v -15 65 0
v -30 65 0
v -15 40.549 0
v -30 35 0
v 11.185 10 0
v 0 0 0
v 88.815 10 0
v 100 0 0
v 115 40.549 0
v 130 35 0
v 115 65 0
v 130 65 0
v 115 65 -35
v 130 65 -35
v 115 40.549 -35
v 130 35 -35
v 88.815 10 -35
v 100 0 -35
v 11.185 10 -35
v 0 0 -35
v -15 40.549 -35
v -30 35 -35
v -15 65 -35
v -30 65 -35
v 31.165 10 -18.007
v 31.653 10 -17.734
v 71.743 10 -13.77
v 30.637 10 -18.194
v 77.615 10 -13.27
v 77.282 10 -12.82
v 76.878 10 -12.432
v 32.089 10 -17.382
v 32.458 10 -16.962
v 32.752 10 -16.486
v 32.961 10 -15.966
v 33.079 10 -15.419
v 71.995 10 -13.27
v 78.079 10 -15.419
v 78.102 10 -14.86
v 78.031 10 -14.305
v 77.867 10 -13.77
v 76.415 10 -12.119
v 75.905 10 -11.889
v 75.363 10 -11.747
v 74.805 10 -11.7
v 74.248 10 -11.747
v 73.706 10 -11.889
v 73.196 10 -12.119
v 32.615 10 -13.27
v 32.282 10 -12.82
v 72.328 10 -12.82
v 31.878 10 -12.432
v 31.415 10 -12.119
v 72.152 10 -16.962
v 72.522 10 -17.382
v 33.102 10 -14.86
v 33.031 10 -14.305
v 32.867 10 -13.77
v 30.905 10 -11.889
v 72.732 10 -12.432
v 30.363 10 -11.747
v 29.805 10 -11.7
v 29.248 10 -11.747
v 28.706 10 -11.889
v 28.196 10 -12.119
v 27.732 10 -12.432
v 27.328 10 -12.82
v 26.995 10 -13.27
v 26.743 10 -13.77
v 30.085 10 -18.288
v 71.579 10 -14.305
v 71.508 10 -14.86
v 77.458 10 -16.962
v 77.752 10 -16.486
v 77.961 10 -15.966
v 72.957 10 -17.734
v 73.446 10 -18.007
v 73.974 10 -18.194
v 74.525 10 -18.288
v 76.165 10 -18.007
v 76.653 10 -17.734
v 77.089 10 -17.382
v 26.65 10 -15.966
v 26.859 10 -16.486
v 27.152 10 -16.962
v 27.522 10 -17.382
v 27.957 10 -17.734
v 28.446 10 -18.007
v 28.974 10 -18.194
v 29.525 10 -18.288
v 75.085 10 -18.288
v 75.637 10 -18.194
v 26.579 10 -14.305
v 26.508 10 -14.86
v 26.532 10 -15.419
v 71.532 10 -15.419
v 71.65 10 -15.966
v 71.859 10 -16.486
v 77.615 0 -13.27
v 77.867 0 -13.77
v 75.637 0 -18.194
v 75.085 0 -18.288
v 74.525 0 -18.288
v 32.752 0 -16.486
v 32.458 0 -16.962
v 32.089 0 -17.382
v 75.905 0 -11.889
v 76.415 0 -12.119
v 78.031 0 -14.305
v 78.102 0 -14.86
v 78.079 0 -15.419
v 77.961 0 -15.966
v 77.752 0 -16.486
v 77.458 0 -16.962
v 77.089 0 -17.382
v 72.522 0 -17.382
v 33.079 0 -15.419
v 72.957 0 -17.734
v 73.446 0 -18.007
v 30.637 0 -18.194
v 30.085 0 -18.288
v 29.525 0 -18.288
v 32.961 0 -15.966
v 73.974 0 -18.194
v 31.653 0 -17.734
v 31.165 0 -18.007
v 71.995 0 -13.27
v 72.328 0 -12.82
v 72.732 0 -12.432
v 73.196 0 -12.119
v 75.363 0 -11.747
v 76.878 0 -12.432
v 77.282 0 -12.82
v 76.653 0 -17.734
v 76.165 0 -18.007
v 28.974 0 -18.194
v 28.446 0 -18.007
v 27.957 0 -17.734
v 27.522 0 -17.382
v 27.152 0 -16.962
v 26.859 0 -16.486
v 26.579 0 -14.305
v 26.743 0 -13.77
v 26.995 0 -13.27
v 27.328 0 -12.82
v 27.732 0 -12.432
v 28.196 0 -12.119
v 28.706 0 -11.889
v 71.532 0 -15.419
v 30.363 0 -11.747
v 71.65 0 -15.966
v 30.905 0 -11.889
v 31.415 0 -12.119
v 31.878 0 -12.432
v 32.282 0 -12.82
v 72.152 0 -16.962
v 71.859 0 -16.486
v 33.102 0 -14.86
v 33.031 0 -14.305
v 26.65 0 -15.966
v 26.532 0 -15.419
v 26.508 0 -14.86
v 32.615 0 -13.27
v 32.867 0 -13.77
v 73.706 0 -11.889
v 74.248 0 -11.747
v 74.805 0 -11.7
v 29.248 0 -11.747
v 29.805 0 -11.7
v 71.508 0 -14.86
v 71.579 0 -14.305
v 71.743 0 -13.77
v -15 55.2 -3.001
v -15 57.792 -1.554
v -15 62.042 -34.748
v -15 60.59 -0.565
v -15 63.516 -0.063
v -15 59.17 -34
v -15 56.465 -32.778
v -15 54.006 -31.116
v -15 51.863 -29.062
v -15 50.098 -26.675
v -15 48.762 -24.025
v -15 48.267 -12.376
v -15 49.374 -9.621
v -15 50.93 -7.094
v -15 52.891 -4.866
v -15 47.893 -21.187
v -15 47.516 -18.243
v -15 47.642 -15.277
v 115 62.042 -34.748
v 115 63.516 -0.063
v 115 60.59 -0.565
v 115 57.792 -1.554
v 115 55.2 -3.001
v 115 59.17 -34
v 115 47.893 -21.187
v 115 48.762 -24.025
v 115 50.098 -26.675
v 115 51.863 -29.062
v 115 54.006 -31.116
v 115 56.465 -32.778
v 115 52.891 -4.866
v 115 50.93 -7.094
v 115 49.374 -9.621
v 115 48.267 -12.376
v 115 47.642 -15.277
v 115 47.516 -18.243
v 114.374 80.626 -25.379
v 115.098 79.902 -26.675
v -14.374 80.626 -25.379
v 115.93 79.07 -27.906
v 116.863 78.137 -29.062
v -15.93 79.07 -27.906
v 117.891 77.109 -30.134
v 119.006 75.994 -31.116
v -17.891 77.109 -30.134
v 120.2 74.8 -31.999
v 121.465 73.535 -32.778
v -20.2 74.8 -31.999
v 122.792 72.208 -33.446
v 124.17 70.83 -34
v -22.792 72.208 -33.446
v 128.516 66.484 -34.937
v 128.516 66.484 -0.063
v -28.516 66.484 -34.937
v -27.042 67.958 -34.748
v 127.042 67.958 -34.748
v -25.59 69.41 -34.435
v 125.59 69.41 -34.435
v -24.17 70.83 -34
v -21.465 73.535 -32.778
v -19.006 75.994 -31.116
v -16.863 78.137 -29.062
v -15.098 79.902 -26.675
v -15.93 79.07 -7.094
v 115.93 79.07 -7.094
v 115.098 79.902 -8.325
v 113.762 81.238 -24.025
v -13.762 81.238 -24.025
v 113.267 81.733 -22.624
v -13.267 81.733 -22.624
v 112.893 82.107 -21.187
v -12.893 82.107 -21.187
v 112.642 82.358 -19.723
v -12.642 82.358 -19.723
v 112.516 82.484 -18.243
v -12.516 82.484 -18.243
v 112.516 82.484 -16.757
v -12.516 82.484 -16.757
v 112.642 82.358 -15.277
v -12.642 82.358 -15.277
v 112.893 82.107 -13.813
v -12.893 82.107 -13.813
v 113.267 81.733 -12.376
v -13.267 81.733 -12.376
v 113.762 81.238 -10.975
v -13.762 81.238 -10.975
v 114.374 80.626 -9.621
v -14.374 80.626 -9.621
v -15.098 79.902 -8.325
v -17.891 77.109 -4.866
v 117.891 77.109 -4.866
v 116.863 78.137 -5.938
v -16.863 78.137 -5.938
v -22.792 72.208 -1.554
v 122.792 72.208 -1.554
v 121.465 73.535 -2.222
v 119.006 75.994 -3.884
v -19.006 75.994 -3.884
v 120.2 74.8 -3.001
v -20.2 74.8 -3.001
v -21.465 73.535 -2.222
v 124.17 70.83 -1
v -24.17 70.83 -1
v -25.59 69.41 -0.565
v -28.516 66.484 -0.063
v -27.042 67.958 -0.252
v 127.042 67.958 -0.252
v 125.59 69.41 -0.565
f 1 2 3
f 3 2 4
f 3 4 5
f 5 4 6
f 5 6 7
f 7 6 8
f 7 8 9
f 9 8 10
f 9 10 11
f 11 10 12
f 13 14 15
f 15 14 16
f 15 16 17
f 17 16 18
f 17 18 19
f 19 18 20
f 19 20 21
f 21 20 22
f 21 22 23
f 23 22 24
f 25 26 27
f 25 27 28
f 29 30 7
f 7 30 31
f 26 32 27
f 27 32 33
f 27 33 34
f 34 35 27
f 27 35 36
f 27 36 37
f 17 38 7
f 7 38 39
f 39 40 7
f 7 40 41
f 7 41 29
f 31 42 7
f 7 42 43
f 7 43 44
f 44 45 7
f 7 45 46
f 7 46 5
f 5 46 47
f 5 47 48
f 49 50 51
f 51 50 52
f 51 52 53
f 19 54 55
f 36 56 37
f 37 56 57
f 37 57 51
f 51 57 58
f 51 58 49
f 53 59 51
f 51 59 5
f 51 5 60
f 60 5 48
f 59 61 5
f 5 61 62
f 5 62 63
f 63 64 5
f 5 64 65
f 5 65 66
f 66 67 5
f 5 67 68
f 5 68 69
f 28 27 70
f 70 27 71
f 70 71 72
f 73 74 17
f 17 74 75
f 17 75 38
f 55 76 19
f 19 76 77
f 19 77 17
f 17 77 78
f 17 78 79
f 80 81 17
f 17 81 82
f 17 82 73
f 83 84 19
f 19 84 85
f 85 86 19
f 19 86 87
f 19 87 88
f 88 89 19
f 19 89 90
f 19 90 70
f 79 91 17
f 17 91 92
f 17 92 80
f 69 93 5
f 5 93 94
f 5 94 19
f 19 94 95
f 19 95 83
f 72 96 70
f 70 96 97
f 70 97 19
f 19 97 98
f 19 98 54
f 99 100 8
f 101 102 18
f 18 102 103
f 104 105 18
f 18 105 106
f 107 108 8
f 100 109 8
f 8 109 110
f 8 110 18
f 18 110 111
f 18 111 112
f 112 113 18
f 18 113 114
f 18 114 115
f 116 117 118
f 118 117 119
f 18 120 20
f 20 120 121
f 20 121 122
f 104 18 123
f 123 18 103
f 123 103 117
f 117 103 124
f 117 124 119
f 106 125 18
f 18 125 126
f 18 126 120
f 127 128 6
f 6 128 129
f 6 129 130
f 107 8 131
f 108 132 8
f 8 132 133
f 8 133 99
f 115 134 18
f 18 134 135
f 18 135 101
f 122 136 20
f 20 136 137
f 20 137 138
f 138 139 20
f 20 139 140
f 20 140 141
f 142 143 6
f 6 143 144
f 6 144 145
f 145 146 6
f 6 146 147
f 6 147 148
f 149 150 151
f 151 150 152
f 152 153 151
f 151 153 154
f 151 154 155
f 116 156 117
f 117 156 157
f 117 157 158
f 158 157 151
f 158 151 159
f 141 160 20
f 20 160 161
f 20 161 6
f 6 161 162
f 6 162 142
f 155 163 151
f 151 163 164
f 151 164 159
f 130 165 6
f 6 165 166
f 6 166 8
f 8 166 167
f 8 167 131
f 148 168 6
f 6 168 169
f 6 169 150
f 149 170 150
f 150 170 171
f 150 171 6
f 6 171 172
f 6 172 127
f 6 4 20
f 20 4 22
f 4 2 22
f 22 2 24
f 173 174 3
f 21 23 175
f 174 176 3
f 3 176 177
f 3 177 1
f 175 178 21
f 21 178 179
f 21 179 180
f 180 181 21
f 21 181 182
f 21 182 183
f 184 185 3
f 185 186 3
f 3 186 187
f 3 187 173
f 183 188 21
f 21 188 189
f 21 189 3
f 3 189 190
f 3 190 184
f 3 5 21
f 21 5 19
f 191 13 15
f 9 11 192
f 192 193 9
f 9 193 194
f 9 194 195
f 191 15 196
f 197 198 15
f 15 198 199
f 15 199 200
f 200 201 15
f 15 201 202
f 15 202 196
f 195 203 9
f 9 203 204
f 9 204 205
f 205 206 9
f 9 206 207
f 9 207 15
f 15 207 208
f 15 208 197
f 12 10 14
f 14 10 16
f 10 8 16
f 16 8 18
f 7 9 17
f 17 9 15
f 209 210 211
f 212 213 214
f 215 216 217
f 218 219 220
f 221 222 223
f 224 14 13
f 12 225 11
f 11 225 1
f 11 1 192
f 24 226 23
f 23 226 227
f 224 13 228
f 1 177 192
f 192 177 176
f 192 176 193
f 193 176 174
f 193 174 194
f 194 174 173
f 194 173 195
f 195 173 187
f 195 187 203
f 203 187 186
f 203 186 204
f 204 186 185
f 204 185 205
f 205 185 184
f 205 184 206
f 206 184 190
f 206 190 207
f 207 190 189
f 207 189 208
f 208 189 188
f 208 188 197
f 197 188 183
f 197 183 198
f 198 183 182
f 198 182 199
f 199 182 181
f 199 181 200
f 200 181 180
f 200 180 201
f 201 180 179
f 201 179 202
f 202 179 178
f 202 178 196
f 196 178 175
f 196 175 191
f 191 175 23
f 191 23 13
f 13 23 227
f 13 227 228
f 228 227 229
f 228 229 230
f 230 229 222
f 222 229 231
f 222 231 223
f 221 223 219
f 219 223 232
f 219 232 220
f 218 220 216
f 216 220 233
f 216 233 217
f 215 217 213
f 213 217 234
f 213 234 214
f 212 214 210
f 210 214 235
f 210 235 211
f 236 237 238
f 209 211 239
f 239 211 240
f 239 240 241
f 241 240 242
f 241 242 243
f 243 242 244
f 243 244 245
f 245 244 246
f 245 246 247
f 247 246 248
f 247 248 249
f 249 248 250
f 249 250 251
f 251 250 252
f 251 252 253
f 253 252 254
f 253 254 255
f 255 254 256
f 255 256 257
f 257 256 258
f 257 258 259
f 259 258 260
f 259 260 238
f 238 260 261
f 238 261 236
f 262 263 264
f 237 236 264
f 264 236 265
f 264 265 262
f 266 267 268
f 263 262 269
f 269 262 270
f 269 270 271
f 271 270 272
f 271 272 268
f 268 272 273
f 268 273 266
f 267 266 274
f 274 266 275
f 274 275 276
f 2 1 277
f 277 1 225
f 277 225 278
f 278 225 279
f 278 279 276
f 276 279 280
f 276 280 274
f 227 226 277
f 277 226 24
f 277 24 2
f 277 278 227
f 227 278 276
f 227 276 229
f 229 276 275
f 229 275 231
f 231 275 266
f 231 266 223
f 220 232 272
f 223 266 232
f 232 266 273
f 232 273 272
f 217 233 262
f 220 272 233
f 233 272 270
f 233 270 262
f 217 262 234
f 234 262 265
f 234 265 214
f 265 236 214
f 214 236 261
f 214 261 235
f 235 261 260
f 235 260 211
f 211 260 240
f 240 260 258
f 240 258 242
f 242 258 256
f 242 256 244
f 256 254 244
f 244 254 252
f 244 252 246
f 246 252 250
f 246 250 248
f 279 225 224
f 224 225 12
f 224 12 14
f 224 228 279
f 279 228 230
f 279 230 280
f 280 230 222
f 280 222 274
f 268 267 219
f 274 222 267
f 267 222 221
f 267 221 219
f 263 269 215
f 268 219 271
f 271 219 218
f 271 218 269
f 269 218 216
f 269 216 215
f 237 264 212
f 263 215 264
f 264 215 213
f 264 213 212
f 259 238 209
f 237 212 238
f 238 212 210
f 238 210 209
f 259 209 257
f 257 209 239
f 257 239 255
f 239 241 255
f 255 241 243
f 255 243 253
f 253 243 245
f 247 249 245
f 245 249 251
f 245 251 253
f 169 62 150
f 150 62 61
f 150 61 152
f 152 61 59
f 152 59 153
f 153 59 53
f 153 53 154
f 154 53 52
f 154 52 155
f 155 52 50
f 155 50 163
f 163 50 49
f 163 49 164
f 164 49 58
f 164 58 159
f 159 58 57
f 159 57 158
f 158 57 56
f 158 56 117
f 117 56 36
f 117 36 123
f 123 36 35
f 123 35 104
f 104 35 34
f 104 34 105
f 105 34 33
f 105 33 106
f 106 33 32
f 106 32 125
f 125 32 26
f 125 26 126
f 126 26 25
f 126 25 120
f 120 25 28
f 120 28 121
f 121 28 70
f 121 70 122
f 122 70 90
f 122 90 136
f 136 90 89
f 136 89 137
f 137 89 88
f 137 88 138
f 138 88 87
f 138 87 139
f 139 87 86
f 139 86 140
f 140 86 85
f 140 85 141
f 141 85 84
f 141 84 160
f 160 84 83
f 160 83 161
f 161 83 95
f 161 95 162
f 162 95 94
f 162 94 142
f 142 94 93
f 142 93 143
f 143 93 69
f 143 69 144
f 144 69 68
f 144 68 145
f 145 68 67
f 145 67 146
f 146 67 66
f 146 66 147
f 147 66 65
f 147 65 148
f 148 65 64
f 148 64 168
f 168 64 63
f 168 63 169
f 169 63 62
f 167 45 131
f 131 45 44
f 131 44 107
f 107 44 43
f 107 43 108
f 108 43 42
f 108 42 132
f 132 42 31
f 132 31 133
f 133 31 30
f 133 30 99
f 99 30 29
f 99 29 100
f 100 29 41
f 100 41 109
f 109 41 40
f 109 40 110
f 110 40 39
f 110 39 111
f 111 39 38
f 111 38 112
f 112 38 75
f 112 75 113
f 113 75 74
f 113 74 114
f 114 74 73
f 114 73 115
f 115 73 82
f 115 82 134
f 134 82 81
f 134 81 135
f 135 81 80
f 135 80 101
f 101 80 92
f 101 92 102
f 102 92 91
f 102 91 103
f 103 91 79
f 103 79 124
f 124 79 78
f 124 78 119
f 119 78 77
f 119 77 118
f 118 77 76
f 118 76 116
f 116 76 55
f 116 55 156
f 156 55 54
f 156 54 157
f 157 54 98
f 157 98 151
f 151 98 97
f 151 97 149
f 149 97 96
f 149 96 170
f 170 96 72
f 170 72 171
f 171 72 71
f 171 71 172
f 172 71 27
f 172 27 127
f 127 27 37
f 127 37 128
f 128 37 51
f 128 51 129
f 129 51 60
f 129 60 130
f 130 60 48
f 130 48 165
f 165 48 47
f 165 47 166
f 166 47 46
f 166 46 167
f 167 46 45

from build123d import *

# Parameters (mm, degrees)
SKETCH1_W                = 100
SKETCH1_H                = 35
BOSS_EXTRUDE1_DEPTH      = 10
BOSS_EXTRUDE2_DEPTH      = 35
SKETCH3_R                = 17.5
BOSS_EXTRUDE3_DEPTH      = 130
CHAMFER1_SIZE            = 15
CUT_EXTRUDE1_DEPTH       = 158.896326746
M6_CLEARANCE_HOLE1_D     = 6.6
M6_CLEARANCE_HOLE1_DEPTH = 10


with BuildPart() as part:
    # Sketch1 → Boss-Extrude1 (new body)
    with BuildSketch(Plane(origin=(0, 0, 0), x_dir=(1, 0, 0), z_dir=(0, 1, 0))):
        with Locations((50, 17.5)):
            Rectangle(SKETCH1_W, SKETCH1_H)
    extrude(amount=BOSS_EXTRUDE1_DEPTH)

    # Sketch2 → Boss-Extrude2 (add)
    with BuildSketch(Plane.XY):
        Polygon((0, 0), (-30, 35), (-30, 65), (-15, 65), (-15, 40.548861143), (11.184738123, 10), align=None)
        Polygon((115, 40.548861143), (88.815261877, 10), (100, 0), (130, 35), (130, 65), (115, 65), align=None)
    extrude(amount=-BOSS_EXTRUDE2_DEPTH)

    # Sketch3 → Boss-Extrude3 (add)
    with BuildSketch(Plane.ZY.offset(-115)):
        with Locations(Location((-17.5, 65, 0), (0, 0, 180))):
            Circle(SKETCH3_R)
    extrude(amount=BOSS_EXTRUDE3_DEPTH)

    # Chamfer1
    # the kernel refuses this chamfer: 15 mm, written as the material it adds along each edge
    with BuildSketch(Plane(origin=(-15, 65, 38.575244819), x_dir=(-0.9996219169112968, -0.02749587661058678, 0), z_dir=(0, 0, -1))) as chamfer1_piece_1_section:
        Polygon((CHAMFER1_SIZE * 0.999621916911, CHAMFER1_SIZE * 0.0274958766106), (-CHAMFER1_SIZE * 0.0274958766106, CHAMFER1_SIZE * 0.999621916911), (0, 0), align=None)
    chamfer1_piece_1 = extrude(amount=112.150489639, mode=Mode.PRIVATE)
    chamfer1_piece_1 = chamfer1_piece_1 & Plane(origin=(-20.149822061, 65, -17.5), x_dir=(0, 0, -1), z_dir=(1, 0, 0)) * Cylinder(17.5, 285, mode=Mode.PRIVATE)
    add(chamfer1_piece_1)
    with BuildSketch(Plane(origin=(115, 65, 38.575244819), x_dir=(0.9996219169112966, -0.02749587661058679, 0), z_dir=(0, 0, -1))) as chamfer1_piece_2_section:
        Polygon((CHAMFER1_SIZE * 0.999621916911, -CHAMFER1_SIZE * 0.0274958766106), (-CHAMFER1_SIZE * 0.0274958766106, -CHAMFER1_SIZE * 0.999621916911), (0, 0), align=None)
    chamfer1_piece_2 = extrude(amount=112.150489639, mode=Mode.PRIVATE)
    chamfer1_piece_2 = chamfer1_piece_2 & Plane(origin=(120.149822061, 65, -17.5), x_dir=(0, 0, -1), z_dir=(1, 0, 0)) * Cylinder(17.5, 285, mode=Mode.PRIVATE)
    add(chamfer1_piece_2)

    # Sketch4 → Cut-Extrude1 (cut, through all)
    with BuildSketch(Plane(origin=(0, 0, -35), x_dir=(-1, 0, 0), z_dir=(0, 0, -1))):
        Polygon((-130, 65), (-112.5, 82.5), (-130, 82.5), align=None)
        Polygon((12.5, 82.5), (30, 82.5), (30, 65), align=None)
    extrude(amount=-CUT_EXTRUDE1_DEPTH, mode=Mode.SUBTRACT)

    # M6 Clearance Hole1
    with Locations(Plane(origin=(0, 10, 0), x_dir=(1, 0, 0), z_dir=(0, 1, 0))):
        with Locations((29.805261877, 15), (74.805261877, 15)):
            Hole(M6_CLEARANCE_HOLE1_D / 2, depth=M6_CLEARANCE_HOLE1_DEPTH)


solid = part.part
